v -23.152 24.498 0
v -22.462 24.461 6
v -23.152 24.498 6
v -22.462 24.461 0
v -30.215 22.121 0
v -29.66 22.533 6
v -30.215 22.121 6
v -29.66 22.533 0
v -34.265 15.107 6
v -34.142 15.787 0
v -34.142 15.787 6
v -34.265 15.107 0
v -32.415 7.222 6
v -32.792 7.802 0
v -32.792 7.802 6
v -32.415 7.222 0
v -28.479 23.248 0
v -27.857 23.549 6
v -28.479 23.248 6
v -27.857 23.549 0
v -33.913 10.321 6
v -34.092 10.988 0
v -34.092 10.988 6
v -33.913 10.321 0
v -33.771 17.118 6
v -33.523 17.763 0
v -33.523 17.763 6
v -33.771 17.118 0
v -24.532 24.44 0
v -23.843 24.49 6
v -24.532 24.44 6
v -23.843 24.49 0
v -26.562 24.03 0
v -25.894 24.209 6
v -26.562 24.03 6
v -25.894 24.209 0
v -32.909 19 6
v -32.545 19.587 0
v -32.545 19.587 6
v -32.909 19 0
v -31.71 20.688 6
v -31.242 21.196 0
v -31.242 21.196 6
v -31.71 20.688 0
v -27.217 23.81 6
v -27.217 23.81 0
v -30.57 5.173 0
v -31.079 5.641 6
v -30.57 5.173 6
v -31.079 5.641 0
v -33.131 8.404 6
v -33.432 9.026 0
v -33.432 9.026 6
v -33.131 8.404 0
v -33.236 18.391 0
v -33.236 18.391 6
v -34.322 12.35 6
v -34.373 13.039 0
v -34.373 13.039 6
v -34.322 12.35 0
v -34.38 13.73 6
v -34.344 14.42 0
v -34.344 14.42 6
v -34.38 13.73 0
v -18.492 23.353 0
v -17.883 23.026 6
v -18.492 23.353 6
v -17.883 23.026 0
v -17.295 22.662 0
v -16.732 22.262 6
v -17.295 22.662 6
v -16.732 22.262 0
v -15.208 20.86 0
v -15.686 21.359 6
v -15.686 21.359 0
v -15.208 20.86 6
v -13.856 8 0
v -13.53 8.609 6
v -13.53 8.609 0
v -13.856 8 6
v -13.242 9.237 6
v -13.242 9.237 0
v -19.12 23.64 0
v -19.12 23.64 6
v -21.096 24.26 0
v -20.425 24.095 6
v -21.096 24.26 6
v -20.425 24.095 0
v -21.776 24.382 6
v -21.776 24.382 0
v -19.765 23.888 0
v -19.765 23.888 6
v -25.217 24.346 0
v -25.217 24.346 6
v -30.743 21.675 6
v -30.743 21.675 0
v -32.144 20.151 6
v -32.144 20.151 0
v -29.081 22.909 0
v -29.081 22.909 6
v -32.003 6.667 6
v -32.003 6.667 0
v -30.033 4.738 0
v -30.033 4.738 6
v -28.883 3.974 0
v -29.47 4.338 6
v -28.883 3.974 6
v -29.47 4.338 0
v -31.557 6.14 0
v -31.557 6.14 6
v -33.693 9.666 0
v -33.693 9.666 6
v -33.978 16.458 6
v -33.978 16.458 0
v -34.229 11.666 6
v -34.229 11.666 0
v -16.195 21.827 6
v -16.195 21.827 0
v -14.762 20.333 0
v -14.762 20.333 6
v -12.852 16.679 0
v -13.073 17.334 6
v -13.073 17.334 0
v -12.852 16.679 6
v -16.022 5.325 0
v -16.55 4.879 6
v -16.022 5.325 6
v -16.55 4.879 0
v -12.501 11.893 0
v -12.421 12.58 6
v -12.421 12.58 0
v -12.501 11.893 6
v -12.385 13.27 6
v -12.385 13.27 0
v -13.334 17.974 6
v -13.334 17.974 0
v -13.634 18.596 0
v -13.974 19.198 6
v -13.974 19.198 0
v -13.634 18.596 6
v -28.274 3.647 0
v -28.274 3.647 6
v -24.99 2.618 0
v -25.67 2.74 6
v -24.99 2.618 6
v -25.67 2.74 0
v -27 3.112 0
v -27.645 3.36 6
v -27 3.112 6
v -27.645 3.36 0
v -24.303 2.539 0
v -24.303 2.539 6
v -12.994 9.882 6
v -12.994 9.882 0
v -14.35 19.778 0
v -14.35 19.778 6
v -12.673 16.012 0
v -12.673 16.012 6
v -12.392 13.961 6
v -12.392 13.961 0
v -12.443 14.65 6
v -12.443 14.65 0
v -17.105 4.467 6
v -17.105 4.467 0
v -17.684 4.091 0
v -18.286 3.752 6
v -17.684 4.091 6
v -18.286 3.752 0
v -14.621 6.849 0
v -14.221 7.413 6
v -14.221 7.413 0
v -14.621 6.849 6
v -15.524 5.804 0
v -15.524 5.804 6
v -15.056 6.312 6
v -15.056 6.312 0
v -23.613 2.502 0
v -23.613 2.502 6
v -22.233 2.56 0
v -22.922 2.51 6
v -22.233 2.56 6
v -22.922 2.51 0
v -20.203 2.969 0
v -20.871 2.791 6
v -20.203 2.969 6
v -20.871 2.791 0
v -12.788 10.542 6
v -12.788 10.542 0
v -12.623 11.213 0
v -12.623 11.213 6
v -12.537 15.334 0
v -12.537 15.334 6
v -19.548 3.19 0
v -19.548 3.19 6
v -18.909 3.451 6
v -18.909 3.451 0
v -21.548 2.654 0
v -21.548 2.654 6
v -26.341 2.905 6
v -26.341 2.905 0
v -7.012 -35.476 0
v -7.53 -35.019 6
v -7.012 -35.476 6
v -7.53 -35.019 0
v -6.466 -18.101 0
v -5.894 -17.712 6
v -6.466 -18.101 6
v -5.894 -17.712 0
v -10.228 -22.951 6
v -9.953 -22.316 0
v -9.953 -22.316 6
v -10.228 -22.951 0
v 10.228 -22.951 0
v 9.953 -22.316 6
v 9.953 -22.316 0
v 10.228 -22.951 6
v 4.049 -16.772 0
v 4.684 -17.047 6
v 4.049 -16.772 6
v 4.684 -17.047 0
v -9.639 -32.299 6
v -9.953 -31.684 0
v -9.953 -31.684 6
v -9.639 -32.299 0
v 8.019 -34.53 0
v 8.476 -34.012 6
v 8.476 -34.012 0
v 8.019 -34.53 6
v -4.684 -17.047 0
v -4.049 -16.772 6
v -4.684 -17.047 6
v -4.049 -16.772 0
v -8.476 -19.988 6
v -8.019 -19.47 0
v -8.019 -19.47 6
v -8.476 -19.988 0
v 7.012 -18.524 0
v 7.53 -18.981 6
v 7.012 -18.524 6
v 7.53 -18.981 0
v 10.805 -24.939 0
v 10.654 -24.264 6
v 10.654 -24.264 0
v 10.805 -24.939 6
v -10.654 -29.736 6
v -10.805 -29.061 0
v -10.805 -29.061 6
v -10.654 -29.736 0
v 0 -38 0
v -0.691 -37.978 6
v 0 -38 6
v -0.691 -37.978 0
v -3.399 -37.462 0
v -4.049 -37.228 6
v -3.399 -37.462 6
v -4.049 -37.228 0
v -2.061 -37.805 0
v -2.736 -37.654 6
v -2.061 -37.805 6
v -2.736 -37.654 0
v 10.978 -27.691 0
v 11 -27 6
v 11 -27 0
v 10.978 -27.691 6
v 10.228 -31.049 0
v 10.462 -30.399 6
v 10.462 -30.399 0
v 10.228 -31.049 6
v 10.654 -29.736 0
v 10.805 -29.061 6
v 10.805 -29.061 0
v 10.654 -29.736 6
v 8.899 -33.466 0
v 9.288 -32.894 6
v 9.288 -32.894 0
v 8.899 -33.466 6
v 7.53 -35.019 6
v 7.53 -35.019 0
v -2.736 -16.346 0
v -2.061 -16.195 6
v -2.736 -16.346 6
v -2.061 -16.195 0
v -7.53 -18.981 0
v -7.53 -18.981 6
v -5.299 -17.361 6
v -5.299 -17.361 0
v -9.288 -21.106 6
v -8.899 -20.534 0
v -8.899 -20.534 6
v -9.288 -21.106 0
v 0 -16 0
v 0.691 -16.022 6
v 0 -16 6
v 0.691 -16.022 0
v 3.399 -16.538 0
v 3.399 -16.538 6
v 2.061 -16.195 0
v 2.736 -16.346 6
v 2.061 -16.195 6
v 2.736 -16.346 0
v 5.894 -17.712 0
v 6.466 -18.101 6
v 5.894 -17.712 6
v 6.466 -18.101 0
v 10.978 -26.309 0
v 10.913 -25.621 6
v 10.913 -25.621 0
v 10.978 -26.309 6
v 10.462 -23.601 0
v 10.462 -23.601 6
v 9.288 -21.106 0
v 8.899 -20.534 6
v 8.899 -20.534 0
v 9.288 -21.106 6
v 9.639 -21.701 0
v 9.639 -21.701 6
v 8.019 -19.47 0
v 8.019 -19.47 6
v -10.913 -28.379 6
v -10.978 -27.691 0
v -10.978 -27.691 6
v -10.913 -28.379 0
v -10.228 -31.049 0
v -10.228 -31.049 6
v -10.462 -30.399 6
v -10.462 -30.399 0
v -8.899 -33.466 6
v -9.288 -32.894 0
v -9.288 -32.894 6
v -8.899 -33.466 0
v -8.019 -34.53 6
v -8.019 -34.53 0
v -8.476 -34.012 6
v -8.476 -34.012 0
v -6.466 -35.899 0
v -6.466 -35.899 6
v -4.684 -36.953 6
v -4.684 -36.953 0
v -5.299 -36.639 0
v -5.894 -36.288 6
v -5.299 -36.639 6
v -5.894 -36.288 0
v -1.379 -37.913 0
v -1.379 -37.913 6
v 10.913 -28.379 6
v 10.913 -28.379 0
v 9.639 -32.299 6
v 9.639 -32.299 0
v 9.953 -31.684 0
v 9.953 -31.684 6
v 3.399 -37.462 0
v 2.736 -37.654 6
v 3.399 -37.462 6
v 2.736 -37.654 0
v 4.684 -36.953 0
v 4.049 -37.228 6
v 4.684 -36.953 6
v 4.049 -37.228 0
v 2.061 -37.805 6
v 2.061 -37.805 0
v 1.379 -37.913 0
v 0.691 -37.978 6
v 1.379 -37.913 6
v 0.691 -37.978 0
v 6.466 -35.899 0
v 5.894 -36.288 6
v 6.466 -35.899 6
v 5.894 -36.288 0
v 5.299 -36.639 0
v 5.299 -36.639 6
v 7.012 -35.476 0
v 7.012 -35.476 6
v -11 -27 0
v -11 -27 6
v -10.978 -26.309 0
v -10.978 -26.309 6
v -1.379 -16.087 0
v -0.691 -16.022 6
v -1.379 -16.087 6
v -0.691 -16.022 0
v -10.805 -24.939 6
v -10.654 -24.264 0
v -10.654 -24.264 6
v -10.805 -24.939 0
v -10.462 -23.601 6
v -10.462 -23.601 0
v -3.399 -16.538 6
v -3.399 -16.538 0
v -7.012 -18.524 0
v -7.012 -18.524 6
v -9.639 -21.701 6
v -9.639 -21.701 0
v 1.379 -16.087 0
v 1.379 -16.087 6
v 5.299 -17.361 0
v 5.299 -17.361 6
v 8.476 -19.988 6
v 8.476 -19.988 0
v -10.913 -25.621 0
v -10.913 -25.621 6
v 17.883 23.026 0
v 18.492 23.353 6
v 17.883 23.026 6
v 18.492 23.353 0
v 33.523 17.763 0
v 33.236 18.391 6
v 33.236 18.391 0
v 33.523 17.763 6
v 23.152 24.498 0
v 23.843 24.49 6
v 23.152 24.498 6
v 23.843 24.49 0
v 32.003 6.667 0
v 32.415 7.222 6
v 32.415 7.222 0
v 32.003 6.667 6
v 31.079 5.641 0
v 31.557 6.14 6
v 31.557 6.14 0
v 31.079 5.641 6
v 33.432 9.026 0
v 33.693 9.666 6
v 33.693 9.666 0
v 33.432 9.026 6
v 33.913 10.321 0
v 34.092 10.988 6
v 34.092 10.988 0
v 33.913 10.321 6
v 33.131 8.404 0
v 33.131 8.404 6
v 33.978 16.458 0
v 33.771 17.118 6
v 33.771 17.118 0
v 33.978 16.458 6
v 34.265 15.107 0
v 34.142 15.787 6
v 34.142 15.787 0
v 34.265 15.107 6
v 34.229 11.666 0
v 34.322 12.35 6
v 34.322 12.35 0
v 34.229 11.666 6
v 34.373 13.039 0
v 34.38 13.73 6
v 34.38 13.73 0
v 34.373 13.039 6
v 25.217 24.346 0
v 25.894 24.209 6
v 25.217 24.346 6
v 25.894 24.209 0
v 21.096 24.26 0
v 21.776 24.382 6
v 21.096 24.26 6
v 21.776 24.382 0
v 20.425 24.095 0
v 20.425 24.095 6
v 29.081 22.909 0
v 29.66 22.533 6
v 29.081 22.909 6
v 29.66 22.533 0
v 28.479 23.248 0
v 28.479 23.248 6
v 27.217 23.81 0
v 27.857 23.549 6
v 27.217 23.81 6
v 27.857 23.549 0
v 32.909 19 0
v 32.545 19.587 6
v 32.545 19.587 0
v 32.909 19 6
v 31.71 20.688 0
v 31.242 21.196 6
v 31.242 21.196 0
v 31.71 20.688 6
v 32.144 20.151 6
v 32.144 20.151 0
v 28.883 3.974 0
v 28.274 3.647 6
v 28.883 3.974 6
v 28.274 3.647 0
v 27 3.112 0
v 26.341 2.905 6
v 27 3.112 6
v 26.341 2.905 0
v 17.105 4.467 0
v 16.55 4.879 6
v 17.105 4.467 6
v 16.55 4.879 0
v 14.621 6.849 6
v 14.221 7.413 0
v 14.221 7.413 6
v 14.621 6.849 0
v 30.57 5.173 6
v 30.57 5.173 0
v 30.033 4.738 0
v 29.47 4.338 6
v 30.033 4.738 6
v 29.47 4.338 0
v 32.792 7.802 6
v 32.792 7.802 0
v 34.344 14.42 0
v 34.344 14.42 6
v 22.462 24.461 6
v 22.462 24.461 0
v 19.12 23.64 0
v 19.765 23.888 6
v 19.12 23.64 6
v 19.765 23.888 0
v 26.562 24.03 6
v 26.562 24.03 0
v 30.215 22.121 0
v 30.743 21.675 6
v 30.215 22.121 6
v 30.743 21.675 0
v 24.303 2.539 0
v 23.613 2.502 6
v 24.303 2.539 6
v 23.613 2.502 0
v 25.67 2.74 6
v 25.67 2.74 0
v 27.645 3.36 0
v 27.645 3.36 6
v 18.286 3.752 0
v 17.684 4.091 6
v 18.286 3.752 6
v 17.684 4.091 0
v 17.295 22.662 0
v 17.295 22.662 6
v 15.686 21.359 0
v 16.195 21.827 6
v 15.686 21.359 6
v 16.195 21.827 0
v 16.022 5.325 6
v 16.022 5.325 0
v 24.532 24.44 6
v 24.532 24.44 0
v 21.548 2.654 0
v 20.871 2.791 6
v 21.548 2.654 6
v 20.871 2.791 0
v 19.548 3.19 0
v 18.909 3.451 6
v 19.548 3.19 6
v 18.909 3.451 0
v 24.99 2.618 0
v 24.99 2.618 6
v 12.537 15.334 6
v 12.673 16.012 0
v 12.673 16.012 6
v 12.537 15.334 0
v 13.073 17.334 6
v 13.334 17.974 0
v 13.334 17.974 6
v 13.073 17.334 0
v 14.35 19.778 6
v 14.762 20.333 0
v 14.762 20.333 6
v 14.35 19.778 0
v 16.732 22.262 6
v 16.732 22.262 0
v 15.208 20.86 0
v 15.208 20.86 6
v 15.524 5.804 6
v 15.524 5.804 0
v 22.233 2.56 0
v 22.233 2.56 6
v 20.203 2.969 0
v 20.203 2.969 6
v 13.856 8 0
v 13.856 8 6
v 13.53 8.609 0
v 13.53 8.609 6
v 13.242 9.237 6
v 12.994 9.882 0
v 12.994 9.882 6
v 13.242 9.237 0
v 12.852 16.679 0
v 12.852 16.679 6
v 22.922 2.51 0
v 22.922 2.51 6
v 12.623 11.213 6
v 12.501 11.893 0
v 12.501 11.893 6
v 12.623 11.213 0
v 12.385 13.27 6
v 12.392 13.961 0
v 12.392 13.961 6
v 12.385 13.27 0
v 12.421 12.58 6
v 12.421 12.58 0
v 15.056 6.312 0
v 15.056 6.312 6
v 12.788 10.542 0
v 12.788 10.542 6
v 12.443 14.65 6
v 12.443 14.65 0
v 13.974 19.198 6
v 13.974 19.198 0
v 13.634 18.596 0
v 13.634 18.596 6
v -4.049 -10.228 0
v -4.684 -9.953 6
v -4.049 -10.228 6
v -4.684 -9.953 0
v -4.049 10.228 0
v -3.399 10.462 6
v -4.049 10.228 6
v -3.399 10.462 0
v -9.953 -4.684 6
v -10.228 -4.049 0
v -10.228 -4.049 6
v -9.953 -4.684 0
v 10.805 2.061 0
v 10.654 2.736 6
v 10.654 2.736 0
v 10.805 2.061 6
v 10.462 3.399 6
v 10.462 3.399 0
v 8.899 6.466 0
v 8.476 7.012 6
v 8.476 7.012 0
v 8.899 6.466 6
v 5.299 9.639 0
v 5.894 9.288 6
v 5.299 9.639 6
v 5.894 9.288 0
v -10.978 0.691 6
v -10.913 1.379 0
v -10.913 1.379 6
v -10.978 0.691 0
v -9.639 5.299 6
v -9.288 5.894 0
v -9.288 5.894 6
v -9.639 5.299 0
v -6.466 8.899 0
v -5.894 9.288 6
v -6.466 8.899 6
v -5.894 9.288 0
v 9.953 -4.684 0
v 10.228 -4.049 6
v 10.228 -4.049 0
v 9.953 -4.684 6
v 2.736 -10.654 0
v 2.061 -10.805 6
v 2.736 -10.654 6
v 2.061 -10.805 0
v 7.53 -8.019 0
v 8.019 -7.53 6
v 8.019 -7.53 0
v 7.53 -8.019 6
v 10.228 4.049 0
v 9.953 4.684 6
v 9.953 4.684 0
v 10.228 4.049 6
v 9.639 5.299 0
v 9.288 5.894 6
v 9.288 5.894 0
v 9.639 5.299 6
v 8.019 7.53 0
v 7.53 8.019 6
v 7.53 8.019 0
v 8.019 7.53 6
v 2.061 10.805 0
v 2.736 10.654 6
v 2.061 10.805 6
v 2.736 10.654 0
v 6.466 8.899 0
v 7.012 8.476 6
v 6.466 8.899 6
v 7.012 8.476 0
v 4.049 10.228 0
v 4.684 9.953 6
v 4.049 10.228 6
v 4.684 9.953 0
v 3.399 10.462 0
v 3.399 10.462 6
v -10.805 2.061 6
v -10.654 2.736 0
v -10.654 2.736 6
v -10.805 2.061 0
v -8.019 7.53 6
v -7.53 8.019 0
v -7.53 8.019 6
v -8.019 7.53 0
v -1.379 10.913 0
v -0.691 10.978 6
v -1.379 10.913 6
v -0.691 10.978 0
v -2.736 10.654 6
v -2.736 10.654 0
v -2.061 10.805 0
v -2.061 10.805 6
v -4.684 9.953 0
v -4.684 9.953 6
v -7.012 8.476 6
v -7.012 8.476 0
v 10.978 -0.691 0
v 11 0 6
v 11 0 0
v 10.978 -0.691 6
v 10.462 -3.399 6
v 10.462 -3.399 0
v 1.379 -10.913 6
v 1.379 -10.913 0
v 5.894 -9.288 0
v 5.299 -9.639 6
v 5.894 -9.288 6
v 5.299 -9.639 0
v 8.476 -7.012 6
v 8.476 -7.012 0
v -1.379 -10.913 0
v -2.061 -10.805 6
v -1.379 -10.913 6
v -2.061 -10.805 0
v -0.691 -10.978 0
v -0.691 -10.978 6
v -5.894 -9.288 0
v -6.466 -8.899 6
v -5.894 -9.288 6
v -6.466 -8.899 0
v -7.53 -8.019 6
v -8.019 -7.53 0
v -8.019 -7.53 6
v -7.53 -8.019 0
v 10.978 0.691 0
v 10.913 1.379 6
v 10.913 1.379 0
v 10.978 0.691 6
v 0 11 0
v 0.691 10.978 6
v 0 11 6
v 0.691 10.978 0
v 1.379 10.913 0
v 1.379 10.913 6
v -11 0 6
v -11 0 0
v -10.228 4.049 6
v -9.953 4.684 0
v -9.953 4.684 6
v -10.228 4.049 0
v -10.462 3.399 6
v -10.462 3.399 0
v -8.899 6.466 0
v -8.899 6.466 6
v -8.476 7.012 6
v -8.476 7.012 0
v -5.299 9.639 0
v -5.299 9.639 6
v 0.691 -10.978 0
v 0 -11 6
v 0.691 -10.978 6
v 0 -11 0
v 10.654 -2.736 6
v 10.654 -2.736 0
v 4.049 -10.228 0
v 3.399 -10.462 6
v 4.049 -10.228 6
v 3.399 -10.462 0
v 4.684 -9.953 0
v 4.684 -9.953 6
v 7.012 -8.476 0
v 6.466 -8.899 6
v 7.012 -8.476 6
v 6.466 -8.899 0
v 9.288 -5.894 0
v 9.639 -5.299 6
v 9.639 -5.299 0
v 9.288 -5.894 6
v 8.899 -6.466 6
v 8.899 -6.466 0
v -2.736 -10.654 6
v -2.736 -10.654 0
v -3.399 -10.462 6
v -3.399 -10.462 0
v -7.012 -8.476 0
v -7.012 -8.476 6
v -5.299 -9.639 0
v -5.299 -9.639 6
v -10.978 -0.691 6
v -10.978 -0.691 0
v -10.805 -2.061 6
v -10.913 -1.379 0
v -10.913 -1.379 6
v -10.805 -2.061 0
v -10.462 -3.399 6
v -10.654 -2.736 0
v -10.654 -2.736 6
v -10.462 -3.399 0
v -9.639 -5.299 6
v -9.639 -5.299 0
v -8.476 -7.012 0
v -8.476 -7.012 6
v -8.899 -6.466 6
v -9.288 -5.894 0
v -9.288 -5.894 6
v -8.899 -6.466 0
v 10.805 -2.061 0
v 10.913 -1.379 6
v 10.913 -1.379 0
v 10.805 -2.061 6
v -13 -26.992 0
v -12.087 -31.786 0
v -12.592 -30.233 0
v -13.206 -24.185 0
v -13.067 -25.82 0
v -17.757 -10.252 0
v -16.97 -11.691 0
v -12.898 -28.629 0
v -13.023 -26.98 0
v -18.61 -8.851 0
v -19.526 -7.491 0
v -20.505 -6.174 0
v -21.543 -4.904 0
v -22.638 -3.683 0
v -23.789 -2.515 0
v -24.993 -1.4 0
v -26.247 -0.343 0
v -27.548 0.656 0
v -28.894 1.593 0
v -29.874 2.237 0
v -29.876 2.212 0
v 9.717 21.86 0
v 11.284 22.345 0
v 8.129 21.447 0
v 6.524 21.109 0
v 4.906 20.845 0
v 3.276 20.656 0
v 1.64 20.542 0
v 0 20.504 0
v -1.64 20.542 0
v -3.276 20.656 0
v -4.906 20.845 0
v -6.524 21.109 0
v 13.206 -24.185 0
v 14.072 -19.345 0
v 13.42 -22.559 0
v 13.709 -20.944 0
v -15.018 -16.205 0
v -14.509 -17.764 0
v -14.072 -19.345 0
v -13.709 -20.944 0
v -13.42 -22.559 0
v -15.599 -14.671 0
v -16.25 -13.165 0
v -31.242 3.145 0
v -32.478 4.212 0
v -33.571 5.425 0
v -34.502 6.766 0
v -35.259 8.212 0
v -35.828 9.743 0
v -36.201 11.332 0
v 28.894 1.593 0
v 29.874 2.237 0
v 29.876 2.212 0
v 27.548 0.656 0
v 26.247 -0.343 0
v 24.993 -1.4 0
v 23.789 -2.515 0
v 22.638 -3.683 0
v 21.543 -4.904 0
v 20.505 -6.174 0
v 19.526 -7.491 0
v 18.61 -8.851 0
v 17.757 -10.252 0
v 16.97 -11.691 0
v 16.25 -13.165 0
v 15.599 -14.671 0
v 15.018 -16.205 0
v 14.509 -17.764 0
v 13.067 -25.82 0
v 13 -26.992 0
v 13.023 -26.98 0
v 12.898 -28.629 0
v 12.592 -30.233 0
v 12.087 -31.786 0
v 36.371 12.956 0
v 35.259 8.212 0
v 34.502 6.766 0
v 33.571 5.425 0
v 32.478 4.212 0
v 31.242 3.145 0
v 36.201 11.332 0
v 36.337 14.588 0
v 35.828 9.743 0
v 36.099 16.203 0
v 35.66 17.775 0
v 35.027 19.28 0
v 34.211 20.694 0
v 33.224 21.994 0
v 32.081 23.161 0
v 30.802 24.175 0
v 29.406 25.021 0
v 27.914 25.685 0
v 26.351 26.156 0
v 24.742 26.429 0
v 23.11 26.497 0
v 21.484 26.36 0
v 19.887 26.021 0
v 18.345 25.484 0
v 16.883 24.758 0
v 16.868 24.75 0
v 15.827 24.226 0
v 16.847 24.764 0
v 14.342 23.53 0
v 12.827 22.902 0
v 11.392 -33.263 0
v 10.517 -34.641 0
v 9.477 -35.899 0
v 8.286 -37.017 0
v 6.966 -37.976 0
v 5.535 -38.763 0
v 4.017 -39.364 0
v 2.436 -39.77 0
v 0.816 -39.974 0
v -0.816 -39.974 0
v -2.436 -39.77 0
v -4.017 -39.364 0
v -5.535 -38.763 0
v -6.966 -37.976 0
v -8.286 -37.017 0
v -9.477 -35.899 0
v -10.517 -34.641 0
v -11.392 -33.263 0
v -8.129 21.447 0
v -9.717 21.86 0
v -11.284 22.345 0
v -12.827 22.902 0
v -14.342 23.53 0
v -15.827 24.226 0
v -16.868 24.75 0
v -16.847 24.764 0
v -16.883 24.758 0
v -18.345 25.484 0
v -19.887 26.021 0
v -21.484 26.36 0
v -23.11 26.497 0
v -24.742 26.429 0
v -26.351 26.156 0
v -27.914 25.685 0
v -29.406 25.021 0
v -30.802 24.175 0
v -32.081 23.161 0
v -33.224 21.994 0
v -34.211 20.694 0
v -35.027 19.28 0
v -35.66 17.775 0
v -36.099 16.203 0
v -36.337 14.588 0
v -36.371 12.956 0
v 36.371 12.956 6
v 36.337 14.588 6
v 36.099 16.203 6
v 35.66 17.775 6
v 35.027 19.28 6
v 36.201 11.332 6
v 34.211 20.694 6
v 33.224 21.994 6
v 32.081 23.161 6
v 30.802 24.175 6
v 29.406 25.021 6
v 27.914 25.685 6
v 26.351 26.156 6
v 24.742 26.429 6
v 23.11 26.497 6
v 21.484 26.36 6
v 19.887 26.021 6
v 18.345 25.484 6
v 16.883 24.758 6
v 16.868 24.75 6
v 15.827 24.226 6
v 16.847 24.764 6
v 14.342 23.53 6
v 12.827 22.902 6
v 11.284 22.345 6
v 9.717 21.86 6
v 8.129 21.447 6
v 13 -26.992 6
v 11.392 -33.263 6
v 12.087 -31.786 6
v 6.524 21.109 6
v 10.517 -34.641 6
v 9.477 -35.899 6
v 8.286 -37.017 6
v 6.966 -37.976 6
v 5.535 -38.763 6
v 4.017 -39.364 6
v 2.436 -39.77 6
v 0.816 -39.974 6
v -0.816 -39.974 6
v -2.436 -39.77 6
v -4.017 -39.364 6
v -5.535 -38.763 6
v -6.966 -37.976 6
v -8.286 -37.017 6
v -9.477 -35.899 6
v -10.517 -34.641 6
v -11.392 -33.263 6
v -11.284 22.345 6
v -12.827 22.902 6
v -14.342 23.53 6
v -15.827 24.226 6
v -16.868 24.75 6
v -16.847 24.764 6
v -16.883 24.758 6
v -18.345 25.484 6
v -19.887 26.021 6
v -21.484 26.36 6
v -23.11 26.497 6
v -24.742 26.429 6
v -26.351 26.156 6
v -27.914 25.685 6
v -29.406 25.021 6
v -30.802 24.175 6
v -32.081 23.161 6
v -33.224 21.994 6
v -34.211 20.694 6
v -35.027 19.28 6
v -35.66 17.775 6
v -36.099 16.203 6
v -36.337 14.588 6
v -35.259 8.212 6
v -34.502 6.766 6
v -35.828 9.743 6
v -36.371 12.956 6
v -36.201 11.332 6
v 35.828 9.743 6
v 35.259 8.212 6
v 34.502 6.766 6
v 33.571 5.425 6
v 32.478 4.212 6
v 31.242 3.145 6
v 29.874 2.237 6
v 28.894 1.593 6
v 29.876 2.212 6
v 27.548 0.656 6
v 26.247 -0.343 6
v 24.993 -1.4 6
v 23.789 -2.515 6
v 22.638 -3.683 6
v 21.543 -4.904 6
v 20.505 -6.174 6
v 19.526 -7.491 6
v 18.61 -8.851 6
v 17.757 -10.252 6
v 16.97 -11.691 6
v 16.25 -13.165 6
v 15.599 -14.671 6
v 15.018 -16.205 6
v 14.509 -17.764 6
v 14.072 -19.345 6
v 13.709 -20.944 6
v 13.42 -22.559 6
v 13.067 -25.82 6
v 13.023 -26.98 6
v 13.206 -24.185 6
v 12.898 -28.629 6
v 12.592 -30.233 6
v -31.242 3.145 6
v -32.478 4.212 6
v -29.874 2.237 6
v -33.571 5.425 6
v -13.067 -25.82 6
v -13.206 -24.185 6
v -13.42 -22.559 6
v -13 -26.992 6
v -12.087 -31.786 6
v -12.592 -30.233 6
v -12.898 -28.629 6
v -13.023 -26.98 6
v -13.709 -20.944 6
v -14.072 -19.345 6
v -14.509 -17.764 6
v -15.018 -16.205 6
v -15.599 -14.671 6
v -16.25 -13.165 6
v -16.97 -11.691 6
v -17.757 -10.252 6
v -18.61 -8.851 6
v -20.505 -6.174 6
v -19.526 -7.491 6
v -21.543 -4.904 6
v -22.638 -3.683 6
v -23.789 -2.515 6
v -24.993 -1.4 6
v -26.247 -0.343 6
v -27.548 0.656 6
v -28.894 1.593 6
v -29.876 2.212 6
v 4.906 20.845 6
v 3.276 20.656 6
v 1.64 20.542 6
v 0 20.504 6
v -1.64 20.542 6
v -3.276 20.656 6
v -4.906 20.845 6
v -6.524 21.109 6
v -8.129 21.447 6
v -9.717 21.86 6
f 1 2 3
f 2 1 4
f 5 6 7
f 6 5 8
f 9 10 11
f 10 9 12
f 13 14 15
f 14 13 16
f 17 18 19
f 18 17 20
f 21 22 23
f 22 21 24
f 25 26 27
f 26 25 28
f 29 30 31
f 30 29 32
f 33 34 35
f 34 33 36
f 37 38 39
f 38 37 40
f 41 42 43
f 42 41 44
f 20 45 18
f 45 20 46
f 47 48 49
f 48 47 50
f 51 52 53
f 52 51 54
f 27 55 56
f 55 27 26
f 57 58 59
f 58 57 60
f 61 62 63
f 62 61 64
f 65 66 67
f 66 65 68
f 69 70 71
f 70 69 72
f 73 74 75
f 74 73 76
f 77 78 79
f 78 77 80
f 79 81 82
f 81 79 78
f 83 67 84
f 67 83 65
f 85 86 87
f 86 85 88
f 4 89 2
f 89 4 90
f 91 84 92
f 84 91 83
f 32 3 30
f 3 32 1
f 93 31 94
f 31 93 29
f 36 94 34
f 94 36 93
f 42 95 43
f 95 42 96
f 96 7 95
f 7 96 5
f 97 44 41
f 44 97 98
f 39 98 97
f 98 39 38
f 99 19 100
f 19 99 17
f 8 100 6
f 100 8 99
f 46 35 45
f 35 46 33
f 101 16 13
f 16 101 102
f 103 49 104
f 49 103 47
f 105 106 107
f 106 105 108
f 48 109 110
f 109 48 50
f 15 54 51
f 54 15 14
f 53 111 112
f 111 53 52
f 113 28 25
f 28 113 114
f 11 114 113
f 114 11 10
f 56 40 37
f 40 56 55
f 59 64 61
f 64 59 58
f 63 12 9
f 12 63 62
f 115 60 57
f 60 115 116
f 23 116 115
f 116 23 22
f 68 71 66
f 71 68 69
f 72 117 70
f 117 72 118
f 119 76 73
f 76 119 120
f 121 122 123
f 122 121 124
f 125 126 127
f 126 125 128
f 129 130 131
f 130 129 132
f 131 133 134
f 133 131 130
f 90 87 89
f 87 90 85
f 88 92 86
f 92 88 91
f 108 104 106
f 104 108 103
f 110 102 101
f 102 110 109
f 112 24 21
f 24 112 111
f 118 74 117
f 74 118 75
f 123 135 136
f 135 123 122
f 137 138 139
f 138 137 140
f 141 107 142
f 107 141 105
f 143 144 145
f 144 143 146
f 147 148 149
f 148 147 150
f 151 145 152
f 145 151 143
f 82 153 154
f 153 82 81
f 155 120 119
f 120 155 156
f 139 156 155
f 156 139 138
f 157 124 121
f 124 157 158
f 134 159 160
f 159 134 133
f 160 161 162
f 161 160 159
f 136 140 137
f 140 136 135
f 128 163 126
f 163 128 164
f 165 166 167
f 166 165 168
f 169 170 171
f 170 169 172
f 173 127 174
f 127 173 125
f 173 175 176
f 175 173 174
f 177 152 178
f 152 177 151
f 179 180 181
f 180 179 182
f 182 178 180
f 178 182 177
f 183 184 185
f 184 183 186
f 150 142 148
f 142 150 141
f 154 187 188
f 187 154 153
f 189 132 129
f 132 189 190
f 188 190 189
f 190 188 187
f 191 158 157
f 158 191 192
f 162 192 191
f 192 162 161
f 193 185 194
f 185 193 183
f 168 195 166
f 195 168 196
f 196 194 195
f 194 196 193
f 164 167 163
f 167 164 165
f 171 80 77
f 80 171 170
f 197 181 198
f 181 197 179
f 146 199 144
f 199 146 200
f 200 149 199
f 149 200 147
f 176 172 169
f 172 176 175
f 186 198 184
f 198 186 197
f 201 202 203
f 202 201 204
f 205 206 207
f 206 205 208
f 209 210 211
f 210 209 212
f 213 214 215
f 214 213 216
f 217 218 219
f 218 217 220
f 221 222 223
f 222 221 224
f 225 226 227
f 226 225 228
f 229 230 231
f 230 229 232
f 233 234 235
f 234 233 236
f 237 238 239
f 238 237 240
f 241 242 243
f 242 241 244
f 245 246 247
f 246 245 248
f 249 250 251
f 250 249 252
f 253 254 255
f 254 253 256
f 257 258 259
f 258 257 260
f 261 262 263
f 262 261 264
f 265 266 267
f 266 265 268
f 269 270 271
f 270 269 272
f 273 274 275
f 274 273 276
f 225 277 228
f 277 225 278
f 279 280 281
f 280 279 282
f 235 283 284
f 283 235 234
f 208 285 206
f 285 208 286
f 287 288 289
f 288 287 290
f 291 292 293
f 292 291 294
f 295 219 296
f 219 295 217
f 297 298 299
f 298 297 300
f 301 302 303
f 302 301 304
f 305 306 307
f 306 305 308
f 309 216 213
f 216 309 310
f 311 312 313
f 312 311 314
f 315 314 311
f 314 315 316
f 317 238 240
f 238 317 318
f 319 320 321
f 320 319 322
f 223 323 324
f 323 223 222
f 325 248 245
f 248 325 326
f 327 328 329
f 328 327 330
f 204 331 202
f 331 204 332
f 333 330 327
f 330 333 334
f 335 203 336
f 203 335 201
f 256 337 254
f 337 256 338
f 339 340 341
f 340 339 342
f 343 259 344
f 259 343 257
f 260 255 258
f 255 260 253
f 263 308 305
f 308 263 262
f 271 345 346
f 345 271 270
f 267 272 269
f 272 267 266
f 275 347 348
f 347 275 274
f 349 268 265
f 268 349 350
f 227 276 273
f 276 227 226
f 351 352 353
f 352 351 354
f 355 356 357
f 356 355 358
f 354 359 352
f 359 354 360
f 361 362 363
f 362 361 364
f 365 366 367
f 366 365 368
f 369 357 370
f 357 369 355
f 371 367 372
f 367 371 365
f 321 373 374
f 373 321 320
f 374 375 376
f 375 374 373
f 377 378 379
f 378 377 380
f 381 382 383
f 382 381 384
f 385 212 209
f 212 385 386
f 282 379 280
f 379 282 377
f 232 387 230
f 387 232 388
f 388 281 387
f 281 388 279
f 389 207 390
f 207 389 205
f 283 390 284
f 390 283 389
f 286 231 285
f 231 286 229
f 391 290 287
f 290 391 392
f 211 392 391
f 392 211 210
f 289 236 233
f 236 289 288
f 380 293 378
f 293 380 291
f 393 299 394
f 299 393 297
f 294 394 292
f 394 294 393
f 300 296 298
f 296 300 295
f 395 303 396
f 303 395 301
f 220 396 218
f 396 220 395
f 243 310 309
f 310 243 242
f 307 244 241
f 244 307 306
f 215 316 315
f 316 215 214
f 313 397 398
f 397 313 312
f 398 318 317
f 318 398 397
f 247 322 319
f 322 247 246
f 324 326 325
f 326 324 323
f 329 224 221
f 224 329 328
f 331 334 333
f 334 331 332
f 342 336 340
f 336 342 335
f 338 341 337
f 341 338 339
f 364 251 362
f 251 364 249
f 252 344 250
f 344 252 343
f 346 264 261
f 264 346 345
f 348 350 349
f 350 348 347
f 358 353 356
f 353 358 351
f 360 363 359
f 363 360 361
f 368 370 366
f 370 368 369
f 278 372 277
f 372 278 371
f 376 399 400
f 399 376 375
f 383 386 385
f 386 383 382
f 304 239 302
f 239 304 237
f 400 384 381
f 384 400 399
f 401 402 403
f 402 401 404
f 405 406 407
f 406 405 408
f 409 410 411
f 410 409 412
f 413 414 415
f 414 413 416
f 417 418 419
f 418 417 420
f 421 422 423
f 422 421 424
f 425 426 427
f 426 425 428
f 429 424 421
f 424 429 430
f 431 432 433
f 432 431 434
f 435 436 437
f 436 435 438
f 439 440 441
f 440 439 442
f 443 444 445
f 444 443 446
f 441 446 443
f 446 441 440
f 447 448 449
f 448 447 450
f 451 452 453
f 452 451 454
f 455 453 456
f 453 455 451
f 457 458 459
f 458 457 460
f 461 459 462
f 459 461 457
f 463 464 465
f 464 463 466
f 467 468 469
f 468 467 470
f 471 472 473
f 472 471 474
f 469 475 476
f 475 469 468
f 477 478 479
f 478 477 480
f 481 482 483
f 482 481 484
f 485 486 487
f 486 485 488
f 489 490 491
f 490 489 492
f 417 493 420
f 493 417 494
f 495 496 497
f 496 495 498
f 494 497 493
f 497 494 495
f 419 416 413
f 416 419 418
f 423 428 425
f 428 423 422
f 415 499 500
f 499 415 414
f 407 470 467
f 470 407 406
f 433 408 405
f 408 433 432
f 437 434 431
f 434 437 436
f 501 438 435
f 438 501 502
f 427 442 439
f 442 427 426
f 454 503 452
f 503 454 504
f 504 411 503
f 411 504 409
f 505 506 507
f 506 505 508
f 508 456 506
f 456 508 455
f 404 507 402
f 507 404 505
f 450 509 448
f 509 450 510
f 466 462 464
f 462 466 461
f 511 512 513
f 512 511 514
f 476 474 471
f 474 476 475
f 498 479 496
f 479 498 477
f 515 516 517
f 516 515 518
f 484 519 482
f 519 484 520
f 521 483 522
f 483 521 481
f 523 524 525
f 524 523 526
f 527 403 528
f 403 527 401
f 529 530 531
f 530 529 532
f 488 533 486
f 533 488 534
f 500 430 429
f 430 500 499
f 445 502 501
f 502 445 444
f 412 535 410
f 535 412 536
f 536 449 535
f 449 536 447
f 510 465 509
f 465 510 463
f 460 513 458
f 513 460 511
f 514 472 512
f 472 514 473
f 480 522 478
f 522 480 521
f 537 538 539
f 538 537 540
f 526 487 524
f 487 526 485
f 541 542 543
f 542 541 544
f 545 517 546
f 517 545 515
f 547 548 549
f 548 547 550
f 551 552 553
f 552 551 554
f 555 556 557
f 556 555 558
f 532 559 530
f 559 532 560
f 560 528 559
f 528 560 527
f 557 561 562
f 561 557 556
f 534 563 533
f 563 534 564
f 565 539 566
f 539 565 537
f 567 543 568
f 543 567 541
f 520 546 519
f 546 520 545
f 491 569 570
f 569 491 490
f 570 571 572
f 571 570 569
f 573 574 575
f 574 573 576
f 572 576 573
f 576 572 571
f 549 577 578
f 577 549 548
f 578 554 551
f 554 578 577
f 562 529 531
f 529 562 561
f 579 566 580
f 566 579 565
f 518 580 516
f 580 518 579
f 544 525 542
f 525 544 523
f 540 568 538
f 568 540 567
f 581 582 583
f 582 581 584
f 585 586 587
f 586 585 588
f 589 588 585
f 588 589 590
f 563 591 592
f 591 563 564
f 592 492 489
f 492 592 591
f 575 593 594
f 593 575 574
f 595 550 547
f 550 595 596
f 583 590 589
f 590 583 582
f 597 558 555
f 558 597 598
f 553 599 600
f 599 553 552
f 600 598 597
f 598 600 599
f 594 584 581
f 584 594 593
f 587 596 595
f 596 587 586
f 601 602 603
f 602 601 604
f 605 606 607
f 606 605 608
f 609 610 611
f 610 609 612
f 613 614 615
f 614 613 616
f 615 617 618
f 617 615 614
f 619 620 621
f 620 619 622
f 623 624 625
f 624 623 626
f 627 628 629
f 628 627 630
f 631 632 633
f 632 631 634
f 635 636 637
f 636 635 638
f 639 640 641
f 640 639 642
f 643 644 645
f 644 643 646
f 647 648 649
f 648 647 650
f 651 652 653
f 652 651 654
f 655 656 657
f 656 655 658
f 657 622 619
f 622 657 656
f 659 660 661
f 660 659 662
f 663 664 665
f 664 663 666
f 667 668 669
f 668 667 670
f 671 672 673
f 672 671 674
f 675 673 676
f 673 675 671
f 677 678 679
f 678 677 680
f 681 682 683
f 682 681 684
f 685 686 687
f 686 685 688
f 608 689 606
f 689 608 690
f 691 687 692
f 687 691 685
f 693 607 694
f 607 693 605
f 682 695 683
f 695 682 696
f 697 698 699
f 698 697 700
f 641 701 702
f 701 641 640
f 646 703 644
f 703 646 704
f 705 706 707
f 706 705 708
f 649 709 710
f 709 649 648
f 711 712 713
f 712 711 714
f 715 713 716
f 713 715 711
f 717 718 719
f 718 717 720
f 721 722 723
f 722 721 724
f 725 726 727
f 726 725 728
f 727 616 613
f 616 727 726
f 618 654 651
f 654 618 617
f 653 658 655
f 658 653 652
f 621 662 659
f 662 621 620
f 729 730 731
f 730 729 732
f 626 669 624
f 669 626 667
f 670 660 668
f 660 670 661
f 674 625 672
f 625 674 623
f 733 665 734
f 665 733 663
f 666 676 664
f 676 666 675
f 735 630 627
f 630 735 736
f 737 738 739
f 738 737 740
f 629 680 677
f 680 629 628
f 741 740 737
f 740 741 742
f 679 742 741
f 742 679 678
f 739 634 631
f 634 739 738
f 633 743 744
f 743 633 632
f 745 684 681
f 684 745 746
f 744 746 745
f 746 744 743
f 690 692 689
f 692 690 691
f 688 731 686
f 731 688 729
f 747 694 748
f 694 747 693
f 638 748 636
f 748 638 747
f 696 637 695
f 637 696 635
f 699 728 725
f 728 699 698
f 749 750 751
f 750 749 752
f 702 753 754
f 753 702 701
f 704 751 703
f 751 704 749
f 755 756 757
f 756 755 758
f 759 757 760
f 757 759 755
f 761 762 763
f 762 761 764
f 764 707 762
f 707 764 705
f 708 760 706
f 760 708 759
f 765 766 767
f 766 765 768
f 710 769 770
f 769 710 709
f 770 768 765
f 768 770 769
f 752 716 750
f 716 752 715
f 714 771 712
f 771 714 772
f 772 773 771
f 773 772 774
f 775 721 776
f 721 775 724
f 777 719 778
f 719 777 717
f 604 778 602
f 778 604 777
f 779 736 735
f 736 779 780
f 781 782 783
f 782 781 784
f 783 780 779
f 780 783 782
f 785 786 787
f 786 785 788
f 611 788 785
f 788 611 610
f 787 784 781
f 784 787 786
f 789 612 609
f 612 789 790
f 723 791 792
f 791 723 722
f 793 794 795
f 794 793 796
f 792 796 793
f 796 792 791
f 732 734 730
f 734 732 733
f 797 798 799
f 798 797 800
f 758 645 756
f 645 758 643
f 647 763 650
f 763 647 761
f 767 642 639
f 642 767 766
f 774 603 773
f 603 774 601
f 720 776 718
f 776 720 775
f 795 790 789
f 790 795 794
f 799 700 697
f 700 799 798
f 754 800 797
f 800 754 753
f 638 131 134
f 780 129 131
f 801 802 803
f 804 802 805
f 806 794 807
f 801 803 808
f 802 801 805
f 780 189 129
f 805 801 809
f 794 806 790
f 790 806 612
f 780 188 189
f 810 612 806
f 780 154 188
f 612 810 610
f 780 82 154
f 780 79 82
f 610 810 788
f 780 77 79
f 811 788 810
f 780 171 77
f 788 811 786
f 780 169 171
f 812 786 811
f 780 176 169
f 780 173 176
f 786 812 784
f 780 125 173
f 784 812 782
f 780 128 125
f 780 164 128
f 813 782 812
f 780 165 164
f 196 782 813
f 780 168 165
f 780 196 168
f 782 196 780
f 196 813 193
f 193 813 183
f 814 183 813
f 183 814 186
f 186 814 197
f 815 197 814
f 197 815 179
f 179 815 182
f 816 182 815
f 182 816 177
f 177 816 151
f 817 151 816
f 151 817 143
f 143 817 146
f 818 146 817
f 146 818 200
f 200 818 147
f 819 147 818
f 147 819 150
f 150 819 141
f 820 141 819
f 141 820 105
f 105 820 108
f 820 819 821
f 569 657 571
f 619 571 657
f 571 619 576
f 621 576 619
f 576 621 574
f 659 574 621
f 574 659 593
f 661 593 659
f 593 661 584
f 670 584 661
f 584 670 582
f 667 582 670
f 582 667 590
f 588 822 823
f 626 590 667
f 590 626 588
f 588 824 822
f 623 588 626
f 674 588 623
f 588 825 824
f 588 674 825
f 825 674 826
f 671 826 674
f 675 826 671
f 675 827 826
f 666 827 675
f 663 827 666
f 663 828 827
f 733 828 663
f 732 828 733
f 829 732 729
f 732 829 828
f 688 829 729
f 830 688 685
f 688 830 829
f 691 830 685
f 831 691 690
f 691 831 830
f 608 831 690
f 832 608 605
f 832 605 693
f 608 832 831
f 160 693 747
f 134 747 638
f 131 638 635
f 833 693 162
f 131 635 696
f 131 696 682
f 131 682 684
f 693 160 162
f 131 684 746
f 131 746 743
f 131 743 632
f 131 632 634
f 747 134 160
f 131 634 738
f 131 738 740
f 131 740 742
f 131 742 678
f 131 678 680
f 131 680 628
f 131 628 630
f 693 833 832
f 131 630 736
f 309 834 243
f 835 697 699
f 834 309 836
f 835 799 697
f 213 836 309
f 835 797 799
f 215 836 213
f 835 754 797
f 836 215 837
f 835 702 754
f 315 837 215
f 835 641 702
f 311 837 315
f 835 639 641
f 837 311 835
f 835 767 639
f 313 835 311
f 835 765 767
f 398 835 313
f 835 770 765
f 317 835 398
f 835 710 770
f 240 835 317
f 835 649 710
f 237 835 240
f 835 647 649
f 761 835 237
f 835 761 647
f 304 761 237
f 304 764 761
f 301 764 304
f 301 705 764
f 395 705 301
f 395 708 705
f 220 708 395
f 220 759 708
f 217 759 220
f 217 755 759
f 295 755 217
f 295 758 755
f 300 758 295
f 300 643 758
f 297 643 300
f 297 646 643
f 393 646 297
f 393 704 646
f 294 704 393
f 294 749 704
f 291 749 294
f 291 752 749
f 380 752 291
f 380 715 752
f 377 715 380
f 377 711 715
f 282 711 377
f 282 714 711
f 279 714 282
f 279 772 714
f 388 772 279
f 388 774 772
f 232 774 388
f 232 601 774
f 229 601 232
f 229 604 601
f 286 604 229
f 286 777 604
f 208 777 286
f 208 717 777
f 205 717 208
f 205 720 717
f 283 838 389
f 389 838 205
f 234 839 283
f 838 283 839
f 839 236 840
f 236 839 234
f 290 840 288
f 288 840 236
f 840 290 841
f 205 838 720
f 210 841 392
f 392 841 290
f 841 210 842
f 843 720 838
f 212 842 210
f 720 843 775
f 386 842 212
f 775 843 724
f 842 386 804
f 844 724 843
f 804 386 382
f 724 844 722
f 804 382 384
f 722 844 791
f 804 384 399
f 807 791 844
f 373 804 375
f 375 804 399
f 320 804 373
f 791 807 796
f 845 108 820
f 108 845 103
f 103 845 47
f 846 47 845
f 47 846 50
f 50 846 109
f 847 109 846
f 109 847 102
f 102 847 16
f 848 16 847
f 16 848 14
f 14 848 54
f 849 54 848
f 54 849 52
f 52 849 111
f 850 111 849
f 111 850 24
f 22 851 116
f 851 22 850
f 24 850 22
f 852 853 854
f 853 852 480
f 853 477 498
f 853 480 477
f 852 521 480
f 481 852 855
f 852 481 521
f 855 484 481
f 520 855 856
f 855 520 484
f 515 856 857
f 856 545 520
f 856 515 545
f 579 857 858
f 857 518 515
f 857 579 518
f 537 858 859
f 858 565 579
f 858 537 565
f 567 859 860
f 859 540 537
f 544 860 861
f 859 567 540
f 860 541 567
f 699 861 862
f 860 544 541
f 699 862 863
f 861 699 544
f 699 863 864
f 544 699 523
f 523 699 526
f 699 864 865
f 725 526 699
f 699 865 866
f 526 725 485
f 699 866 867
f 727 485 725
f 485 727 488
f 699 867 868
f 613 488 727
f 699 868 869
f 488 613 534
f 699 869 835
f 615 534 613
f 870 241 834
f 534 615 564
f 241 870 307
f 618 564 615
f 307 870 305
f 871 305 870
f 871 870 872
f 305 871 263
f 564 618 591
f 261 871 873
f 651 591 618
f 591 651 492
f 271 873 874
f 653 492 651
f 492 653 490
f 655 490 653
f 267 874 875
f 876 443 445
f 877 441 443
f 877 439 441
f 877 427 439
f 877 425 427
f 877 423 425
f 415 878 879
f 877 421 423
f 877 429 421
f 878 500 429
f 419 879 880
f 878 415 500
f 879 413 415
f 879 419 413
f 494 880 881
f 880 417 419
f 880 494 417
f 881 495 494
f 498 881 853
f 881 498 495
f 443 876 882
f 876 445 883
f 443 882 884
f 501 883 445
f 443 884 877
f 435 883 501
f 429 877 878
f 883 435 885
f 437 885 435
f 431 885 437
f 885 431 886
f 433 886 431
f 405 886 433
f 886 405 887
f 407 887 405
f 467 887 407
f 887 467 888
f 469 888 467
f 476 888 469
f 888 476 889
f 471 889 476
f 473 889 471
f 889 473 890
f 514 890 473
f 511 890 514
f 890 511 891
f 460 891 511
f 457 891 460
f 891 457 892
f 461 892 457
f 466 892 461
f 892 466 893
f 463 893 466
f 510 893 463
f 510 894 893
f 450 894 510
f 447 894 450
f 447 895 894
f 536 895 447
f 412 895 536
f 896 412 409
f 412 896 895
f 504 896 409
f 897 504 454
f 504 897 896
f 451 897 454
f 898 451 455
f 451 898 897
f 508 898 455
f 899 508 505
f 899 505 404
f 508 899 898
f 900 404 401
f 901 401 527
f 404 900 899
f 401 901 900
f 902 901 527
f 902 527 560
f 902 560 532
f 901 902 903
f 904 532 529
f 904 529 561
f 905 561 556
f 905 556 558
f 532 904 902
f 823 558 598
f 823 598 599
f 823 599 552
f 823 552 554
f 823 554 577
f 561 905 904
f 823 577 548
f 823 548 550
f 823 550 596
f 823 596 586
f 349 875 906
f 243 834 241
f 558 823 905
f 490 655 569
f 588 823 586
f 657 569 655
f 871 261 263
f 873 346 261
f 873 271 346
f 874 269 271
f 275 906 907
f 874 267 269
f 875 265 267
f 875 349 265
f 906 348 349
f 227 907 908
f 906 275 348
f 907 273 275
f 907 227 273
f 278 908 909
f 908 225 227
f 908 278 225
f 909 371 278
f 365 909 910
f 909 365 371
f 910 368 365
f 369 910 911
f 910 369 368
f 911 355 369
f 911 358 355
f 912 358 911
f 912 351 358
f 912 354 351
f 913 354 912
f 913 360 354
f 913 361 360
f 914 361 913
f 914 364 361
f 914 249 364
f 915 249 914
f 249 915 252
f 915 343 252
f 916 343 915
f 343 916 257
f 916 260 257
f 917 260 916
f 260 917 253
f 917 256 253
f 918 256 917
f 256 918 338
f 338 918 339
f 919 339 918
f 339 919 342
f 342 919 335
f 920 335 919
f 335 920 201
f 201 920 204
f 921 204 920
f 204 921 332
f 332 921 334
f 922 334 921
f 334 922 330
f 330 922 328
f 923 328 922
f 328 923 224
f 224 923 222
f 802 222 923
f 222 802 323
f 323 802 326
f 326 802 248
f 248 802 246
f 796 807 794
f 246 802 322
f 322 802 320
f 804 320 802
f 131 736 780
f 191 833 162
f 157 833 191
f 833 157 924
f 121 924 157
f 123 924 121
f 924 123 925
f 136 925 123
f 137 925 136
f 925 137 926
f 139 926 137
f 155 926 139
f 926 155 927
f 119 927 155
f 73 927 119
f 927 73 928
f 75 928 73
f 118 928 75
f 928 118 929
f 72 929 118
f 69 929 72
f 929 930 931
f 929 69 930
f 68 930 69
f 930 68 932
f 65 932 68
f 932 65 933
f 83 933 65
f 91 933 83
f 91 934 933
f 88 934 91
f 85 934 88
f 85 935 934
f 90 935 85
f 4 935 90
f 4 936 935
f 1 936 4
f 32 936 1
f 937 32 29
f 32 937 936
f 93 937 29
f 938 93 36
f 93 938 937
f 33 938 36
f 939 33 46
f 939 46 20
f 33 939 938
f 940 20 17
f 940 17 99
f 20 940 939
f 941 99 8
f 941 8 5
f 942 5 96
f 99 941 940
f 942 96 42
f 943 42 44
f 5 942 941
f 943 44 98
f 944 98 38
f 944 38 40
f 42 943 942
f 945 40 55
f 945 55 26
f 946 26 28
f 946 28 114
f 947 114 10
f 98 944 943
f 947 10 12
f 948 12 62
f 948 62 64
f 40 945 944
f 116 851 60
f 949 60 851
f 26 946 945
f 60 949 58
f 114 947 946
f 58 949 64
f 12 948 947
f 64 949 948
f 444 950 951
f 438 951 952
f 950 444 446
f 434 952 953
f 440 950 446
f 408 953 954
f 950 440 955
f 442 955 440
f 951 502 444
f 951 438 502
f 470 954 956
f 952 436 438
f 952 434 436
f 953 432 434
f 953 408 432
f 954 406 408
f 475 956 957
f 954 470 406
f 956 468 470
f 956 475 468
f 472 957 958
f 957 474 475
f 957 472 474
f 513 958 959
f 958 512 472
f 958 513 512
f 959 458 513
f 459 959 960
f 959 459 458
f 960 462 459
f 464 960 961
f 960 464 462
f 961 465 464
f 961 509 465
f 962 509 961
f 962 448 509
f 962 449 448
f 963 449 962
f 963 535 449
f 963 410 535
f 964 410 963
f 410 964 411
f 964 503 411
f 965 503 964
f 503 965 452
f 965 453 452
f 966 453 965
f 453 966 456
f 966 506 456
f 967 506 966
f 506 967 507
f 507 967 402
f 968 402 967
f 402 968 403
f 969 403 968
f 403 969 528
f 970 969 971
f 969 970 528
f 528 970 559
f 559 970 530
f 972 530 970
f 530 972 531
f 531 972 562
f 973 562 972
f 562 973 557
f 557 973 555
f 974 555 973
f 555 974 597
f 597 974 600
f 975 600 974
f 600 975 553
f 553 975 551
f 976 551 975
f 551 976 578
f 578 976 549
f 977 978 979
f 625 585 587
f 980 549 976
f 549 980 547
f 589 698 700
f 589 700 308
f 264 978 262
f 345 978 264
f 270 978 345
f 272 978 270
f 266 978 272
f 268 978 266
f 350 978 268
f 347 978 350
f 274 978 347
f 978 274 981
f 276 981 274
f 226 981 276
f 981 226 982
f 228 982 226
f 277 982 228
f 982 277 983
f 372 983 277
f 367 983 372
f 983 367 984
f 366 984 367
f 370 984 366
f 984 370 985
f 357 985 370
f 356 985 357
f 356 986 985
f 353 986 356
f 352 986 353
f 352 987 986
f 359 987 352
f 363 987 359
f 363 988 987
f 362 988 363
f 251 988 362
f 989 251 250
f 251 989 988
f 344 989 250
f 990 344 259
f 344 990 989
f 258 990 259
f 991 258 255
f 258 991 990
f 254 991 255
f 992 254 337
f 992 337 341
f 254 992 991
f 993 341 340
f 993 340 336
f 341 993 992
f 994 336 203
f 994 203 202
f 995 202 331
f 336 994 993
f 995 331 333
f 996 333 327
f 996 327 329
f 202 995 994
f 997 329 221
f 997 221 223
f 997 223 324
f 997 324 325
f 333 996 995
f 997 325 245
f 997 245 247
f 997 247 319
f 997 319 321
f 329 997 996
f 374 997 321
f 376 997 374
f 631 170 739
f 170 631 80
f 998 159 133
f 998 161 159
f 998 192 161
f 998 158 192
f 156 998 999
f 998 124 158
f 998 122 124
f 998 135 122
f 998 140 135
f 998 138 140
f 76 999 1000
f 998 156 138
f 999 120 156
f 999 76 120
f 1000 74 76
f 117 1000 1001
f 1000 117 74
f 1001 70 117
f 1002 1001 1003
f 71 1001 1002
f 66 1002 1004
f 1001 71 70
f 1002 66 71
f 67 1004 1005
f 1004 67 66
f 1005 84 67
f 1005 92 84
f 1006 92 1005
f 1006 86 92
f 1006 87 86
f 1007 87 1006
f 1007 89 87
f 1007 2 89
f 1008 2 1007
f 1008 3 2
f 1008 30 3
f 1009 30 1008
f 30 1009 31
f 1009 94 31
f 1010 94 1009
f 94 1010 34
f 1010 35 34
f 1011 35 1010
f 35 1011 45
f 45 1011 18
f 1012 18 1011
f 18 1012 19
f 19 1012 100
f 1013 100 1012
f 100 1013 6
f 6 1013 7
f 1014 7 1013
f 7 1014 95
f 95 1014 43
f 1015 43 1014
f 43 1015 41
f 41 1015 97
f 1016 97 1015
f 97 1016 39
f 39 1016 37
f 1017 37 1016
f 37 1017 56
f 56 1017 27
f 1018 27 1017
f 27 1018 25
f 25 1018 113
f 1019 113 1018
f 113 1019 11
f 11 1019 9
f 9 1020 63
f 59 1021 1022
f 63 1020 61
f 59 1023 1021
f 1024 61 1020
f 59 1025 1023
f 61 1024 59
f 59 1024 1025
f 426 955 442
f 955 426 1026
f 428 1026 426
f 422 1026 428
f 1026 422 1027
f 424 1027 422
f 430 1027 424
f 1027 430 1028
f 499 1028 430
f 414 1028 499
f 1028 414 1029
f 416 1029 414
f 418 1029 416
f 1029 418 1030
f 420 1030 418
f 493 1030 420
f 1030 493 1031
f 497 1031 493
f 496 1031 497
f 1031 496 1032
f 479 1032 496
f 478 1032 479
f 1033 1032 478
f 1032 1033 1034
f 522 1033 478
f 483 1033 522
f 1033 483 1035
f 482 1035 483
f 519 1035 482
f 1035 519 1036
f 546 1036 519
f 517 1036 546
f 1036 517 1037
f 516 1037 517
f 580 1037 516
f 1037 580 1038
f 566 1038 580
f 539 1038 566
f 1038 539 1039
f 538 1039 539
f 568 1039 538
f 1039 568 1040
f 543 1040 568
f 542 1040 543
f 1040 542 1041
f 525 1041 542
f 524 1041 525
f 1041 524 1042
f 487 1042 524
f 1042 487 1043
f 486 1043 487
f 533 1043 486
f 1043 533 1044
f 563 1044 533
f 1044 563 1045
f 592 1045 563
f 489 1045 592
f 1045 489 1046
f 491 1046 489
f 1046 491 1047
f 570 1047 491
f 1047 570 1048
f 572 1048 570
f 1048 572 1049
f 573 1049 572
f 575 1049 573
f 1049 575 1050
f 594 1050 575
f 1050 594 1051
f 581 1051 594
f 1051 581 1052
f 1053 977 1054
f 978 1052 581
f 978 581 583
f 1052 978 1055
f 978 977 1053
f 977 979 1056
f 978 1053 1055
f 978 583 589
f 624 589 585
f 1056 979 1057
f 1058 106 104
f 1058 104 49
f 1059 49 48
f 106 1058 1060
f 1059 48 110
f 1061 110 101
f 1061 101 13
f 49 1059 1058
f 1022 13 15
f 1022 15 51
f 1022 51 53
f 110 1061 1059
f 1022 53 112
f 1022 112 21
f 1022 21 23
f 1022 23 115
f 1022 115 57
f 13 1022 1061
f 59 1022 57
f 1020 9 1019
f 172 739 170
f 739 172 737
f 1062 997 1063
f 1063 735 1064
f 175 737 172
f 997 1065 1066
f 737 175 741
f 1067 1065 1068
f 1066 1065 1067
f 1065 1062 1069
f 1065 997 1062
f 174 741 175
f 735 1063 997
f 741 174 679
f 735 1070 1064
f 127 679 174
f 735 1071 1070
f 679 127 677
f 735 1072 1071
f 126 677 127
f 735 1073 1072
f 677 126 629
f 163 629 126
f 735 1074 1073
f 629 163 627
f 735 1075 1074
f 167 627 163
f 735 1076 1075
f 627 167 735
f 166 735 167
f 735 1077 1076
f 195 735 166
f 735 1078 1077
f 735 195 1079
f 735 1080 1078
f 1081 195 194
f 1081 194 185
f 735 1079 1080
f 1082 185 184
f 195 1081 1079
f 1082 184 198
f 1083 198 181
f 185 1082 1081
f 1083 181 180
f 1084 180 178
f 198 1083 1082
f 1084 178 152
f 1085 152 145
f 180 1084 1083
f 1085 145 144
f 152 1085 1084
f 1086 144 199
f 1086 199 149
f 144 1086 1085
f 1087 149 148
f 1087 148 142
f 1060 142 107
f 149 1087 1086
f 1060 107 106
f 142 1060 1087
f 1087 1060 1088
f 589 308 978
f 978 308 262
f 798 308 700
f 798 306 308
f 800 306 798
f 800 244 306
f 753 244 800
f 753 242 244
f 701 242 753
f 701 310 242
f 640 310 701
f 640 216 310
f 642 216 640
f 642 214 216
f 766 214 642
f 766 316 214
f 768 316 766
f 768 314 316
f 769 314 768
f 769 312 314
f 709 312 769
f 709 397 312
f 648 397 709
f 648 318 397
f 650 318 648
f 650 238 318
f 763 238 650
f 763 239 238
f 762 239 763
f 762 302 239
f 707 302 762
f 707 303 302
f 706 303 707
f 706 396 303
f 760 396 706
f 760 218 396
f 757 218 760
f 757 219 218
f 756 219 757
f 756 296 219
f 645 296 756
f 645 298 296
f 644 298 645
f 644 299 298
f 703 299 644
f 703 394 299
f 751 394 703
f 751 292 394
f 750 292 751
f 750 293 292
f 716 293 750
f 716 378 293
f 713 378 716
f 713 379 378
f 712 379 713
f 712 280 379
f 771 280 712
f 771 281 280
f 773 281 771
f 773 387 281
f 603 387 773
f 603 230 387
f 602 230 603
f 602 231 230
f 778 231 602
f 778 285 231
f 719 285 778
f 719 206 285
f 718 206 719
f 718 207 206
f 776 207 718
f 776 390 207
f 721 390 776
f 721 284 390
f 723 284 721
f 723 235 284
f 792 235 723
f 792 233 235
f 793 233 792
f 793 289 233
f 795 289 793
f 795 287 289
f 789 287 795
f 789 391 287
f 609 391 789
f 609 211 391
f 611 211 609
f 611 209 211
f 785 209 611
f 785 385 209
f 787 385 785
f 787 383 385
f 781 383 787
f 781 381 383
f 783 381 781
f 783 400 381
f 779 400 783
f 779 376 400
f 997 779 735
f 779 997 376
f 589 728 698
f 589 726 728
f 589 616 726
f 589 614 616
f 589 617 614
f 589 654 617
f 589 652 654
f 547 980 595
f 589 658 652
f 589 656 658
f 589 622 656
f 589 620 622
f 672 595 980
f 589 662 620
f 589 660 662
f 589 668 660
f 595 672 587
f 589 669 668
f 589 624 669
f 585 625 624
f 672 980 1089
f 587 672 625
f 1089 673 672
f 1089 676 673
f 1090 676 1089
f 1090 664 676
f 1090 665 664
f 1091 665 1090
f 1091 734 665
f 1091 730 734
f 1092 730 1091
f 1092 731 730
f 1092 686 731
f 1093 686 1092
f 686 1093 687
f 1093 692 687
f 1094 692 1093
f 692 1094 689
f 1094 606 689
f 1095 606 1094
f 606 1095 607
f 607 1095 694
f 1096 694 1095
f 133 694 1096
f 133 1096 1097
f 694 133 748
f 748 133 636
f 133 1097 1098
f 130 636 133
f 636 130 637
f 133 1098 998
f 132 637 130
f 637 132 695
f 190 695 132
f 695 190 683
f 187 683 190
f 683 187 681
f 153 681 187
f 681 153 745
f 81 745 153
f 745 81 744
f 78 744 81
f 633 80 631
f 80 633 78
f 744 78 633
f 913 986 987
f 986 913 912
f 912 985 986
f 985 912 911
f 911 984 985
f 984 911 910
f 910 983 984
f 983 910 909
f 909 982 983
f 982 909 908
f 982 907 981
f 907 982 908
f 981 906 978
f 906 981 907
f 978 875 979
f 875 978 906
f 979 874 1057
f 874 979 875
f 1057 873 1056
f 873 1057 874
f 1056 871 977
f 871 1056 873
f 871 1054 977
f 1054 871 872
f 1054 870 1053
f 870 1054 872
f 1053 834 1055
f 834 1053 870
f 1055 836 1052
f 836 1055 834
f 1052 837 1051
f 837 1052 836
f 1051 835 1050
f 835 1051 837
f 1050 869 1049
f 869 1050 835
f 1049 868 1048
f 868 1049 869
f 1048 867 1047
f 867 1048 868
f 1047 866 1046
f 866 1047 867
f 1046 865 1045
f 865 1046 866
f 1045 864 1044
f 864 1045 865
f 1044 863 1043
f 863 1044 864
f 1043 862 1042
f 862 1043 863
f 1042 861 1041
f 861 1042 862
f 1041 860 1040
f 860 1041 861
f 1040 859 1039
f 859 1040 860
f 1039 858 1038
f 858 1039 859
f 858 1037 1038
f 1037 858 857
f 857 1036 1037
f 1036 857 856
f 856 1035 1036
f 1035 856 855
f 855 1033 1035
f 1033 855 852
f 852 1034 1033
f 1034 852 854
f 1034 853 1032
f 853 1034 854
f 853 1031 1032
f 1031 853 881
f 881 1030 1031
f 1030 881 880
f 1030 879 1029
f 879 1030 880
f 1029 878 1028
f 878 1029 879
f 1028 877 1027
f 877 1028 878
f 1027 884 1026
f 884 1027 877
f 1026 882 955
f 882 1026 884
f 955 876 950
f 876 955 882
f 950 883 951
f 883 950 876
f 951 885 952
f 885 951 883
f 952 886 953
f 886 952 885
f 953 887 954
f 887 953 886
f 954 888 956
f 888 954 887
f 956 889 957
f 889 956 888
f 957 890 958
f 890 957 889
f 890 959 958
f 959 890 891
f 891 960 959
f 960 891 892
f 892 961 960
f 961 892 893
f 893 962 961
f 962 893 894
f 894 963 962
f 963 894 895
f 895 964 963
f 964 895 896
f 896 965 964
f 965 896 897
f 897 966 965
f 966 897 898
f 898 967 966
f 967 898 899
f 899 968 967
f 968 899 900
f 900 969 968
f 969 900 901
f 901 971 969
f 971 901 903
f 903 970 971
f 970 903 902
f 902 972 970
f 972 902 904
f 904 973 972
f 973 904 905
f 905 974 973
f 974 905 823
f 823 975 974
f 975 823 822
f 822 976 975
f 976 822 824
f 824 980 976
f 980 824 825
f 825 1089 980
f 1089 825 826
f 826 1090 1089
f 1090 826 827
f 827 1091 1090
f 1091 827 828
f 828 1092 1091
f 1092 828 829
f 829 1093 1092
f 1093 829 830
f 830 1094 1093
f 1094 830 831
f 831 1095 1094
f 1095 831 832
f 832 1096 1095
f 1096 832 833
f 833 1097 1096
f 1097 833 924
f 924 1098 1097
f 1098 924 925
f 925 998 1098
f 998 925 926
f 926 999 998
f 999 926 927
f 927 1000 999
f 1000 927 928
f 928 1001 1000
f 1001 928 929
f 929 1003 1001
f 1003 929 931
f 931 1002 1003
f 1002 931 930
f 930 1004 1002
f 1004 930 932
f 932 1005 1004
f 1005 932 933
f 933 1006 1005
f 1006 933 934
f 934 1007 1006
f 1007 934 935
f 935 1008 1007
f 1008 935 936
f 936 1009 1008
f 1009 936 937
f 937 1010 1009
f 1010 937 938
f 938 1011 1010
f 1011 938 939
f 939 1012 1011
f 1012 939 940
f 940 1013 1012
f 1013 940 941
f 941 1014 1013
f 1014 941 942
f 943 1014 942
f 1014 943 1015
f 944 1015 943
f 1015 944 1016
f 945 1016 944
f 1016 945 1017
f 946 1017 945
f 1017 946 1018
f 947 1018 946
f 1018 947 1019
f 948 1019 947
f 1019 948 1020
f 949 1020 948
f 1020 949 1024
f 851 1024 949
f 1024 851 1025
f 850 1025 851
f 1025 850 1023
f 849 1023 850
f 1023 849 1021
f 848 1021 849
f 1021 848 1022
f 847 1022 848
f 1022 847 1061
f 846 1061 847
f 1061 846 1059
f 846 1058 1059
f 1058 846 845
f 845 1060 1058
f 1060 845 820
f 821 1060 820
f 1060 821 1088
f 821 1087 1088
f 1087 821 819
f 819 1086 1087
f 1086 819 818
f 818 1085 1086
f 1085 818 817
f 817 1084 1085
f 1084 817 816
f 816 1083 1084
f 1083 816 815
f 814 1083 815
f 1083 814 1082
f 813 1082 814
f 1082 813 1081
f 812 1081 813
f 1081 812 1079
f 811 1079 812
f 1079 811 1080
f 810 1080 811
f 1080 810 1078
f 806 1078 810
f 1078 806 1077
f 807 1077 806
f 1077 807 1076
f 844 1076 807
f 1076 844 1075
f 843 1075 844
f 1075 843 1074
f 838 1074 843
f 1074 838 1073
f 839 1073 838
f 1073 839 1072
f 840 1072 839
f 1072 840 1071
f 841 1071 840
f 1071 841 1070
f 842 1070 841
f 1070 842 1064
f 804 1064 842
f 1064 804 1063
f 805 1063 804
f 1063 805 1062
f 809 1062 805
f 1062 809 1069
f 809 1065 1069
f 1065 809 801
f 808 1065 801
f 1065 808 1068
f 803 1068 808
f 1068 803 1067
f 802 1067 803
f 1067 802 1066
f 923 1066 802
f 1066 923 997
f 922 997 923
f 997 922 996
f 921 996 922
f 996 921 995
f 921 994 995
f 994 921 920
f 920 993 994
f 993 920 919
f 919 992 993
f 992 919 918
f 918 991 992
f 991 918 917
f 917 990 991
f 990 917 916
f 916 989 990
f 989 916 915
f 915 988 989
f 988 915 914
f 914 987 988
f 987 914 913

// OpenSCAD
$fn=100;
seg=50;

spinner();

module spinner()
{
	w=26;h=40;
	r=(h-w/2-w/4)/tan(30);

	difference()
	{
		linear_extrude(6)
		union()
		{
			rotate(-60,[0,0,1])
			for (i = [0:2])
			{
				rotate(i*120,[0,0,1])
				{
					translate([-w/2,0])
						square([w,h-w/2]);
					translate([0,h-w/2])
						circle(d=w, $fn=seg);

				}
			}
			// r*tan30 = h-w/2-w/2*sin(30)
			// r = (h-w/2-w/2*sin30) / tan30

			difference()
			{
				circle( sqrt( pow(w/2,2)+pow(h-w/2,2) ) );
				for (i = [0:2])
				{
					rotate(i*120,[0,0,1])
						translate([0,w/2/cos(30)+r/cos(30)])
							circle(r, $fn=seg*2*r/w);
				}
			}
		}
		
		translate([0,0,-50])
		{
			for (i = [0:2])
			{
				rotate(60+i*120,[0,0,1])
					translate([0,h-w/2])
						cylinder(h=100,d=22);
			}	
			cylinder(h=100,d=22);
		}
	}
}
